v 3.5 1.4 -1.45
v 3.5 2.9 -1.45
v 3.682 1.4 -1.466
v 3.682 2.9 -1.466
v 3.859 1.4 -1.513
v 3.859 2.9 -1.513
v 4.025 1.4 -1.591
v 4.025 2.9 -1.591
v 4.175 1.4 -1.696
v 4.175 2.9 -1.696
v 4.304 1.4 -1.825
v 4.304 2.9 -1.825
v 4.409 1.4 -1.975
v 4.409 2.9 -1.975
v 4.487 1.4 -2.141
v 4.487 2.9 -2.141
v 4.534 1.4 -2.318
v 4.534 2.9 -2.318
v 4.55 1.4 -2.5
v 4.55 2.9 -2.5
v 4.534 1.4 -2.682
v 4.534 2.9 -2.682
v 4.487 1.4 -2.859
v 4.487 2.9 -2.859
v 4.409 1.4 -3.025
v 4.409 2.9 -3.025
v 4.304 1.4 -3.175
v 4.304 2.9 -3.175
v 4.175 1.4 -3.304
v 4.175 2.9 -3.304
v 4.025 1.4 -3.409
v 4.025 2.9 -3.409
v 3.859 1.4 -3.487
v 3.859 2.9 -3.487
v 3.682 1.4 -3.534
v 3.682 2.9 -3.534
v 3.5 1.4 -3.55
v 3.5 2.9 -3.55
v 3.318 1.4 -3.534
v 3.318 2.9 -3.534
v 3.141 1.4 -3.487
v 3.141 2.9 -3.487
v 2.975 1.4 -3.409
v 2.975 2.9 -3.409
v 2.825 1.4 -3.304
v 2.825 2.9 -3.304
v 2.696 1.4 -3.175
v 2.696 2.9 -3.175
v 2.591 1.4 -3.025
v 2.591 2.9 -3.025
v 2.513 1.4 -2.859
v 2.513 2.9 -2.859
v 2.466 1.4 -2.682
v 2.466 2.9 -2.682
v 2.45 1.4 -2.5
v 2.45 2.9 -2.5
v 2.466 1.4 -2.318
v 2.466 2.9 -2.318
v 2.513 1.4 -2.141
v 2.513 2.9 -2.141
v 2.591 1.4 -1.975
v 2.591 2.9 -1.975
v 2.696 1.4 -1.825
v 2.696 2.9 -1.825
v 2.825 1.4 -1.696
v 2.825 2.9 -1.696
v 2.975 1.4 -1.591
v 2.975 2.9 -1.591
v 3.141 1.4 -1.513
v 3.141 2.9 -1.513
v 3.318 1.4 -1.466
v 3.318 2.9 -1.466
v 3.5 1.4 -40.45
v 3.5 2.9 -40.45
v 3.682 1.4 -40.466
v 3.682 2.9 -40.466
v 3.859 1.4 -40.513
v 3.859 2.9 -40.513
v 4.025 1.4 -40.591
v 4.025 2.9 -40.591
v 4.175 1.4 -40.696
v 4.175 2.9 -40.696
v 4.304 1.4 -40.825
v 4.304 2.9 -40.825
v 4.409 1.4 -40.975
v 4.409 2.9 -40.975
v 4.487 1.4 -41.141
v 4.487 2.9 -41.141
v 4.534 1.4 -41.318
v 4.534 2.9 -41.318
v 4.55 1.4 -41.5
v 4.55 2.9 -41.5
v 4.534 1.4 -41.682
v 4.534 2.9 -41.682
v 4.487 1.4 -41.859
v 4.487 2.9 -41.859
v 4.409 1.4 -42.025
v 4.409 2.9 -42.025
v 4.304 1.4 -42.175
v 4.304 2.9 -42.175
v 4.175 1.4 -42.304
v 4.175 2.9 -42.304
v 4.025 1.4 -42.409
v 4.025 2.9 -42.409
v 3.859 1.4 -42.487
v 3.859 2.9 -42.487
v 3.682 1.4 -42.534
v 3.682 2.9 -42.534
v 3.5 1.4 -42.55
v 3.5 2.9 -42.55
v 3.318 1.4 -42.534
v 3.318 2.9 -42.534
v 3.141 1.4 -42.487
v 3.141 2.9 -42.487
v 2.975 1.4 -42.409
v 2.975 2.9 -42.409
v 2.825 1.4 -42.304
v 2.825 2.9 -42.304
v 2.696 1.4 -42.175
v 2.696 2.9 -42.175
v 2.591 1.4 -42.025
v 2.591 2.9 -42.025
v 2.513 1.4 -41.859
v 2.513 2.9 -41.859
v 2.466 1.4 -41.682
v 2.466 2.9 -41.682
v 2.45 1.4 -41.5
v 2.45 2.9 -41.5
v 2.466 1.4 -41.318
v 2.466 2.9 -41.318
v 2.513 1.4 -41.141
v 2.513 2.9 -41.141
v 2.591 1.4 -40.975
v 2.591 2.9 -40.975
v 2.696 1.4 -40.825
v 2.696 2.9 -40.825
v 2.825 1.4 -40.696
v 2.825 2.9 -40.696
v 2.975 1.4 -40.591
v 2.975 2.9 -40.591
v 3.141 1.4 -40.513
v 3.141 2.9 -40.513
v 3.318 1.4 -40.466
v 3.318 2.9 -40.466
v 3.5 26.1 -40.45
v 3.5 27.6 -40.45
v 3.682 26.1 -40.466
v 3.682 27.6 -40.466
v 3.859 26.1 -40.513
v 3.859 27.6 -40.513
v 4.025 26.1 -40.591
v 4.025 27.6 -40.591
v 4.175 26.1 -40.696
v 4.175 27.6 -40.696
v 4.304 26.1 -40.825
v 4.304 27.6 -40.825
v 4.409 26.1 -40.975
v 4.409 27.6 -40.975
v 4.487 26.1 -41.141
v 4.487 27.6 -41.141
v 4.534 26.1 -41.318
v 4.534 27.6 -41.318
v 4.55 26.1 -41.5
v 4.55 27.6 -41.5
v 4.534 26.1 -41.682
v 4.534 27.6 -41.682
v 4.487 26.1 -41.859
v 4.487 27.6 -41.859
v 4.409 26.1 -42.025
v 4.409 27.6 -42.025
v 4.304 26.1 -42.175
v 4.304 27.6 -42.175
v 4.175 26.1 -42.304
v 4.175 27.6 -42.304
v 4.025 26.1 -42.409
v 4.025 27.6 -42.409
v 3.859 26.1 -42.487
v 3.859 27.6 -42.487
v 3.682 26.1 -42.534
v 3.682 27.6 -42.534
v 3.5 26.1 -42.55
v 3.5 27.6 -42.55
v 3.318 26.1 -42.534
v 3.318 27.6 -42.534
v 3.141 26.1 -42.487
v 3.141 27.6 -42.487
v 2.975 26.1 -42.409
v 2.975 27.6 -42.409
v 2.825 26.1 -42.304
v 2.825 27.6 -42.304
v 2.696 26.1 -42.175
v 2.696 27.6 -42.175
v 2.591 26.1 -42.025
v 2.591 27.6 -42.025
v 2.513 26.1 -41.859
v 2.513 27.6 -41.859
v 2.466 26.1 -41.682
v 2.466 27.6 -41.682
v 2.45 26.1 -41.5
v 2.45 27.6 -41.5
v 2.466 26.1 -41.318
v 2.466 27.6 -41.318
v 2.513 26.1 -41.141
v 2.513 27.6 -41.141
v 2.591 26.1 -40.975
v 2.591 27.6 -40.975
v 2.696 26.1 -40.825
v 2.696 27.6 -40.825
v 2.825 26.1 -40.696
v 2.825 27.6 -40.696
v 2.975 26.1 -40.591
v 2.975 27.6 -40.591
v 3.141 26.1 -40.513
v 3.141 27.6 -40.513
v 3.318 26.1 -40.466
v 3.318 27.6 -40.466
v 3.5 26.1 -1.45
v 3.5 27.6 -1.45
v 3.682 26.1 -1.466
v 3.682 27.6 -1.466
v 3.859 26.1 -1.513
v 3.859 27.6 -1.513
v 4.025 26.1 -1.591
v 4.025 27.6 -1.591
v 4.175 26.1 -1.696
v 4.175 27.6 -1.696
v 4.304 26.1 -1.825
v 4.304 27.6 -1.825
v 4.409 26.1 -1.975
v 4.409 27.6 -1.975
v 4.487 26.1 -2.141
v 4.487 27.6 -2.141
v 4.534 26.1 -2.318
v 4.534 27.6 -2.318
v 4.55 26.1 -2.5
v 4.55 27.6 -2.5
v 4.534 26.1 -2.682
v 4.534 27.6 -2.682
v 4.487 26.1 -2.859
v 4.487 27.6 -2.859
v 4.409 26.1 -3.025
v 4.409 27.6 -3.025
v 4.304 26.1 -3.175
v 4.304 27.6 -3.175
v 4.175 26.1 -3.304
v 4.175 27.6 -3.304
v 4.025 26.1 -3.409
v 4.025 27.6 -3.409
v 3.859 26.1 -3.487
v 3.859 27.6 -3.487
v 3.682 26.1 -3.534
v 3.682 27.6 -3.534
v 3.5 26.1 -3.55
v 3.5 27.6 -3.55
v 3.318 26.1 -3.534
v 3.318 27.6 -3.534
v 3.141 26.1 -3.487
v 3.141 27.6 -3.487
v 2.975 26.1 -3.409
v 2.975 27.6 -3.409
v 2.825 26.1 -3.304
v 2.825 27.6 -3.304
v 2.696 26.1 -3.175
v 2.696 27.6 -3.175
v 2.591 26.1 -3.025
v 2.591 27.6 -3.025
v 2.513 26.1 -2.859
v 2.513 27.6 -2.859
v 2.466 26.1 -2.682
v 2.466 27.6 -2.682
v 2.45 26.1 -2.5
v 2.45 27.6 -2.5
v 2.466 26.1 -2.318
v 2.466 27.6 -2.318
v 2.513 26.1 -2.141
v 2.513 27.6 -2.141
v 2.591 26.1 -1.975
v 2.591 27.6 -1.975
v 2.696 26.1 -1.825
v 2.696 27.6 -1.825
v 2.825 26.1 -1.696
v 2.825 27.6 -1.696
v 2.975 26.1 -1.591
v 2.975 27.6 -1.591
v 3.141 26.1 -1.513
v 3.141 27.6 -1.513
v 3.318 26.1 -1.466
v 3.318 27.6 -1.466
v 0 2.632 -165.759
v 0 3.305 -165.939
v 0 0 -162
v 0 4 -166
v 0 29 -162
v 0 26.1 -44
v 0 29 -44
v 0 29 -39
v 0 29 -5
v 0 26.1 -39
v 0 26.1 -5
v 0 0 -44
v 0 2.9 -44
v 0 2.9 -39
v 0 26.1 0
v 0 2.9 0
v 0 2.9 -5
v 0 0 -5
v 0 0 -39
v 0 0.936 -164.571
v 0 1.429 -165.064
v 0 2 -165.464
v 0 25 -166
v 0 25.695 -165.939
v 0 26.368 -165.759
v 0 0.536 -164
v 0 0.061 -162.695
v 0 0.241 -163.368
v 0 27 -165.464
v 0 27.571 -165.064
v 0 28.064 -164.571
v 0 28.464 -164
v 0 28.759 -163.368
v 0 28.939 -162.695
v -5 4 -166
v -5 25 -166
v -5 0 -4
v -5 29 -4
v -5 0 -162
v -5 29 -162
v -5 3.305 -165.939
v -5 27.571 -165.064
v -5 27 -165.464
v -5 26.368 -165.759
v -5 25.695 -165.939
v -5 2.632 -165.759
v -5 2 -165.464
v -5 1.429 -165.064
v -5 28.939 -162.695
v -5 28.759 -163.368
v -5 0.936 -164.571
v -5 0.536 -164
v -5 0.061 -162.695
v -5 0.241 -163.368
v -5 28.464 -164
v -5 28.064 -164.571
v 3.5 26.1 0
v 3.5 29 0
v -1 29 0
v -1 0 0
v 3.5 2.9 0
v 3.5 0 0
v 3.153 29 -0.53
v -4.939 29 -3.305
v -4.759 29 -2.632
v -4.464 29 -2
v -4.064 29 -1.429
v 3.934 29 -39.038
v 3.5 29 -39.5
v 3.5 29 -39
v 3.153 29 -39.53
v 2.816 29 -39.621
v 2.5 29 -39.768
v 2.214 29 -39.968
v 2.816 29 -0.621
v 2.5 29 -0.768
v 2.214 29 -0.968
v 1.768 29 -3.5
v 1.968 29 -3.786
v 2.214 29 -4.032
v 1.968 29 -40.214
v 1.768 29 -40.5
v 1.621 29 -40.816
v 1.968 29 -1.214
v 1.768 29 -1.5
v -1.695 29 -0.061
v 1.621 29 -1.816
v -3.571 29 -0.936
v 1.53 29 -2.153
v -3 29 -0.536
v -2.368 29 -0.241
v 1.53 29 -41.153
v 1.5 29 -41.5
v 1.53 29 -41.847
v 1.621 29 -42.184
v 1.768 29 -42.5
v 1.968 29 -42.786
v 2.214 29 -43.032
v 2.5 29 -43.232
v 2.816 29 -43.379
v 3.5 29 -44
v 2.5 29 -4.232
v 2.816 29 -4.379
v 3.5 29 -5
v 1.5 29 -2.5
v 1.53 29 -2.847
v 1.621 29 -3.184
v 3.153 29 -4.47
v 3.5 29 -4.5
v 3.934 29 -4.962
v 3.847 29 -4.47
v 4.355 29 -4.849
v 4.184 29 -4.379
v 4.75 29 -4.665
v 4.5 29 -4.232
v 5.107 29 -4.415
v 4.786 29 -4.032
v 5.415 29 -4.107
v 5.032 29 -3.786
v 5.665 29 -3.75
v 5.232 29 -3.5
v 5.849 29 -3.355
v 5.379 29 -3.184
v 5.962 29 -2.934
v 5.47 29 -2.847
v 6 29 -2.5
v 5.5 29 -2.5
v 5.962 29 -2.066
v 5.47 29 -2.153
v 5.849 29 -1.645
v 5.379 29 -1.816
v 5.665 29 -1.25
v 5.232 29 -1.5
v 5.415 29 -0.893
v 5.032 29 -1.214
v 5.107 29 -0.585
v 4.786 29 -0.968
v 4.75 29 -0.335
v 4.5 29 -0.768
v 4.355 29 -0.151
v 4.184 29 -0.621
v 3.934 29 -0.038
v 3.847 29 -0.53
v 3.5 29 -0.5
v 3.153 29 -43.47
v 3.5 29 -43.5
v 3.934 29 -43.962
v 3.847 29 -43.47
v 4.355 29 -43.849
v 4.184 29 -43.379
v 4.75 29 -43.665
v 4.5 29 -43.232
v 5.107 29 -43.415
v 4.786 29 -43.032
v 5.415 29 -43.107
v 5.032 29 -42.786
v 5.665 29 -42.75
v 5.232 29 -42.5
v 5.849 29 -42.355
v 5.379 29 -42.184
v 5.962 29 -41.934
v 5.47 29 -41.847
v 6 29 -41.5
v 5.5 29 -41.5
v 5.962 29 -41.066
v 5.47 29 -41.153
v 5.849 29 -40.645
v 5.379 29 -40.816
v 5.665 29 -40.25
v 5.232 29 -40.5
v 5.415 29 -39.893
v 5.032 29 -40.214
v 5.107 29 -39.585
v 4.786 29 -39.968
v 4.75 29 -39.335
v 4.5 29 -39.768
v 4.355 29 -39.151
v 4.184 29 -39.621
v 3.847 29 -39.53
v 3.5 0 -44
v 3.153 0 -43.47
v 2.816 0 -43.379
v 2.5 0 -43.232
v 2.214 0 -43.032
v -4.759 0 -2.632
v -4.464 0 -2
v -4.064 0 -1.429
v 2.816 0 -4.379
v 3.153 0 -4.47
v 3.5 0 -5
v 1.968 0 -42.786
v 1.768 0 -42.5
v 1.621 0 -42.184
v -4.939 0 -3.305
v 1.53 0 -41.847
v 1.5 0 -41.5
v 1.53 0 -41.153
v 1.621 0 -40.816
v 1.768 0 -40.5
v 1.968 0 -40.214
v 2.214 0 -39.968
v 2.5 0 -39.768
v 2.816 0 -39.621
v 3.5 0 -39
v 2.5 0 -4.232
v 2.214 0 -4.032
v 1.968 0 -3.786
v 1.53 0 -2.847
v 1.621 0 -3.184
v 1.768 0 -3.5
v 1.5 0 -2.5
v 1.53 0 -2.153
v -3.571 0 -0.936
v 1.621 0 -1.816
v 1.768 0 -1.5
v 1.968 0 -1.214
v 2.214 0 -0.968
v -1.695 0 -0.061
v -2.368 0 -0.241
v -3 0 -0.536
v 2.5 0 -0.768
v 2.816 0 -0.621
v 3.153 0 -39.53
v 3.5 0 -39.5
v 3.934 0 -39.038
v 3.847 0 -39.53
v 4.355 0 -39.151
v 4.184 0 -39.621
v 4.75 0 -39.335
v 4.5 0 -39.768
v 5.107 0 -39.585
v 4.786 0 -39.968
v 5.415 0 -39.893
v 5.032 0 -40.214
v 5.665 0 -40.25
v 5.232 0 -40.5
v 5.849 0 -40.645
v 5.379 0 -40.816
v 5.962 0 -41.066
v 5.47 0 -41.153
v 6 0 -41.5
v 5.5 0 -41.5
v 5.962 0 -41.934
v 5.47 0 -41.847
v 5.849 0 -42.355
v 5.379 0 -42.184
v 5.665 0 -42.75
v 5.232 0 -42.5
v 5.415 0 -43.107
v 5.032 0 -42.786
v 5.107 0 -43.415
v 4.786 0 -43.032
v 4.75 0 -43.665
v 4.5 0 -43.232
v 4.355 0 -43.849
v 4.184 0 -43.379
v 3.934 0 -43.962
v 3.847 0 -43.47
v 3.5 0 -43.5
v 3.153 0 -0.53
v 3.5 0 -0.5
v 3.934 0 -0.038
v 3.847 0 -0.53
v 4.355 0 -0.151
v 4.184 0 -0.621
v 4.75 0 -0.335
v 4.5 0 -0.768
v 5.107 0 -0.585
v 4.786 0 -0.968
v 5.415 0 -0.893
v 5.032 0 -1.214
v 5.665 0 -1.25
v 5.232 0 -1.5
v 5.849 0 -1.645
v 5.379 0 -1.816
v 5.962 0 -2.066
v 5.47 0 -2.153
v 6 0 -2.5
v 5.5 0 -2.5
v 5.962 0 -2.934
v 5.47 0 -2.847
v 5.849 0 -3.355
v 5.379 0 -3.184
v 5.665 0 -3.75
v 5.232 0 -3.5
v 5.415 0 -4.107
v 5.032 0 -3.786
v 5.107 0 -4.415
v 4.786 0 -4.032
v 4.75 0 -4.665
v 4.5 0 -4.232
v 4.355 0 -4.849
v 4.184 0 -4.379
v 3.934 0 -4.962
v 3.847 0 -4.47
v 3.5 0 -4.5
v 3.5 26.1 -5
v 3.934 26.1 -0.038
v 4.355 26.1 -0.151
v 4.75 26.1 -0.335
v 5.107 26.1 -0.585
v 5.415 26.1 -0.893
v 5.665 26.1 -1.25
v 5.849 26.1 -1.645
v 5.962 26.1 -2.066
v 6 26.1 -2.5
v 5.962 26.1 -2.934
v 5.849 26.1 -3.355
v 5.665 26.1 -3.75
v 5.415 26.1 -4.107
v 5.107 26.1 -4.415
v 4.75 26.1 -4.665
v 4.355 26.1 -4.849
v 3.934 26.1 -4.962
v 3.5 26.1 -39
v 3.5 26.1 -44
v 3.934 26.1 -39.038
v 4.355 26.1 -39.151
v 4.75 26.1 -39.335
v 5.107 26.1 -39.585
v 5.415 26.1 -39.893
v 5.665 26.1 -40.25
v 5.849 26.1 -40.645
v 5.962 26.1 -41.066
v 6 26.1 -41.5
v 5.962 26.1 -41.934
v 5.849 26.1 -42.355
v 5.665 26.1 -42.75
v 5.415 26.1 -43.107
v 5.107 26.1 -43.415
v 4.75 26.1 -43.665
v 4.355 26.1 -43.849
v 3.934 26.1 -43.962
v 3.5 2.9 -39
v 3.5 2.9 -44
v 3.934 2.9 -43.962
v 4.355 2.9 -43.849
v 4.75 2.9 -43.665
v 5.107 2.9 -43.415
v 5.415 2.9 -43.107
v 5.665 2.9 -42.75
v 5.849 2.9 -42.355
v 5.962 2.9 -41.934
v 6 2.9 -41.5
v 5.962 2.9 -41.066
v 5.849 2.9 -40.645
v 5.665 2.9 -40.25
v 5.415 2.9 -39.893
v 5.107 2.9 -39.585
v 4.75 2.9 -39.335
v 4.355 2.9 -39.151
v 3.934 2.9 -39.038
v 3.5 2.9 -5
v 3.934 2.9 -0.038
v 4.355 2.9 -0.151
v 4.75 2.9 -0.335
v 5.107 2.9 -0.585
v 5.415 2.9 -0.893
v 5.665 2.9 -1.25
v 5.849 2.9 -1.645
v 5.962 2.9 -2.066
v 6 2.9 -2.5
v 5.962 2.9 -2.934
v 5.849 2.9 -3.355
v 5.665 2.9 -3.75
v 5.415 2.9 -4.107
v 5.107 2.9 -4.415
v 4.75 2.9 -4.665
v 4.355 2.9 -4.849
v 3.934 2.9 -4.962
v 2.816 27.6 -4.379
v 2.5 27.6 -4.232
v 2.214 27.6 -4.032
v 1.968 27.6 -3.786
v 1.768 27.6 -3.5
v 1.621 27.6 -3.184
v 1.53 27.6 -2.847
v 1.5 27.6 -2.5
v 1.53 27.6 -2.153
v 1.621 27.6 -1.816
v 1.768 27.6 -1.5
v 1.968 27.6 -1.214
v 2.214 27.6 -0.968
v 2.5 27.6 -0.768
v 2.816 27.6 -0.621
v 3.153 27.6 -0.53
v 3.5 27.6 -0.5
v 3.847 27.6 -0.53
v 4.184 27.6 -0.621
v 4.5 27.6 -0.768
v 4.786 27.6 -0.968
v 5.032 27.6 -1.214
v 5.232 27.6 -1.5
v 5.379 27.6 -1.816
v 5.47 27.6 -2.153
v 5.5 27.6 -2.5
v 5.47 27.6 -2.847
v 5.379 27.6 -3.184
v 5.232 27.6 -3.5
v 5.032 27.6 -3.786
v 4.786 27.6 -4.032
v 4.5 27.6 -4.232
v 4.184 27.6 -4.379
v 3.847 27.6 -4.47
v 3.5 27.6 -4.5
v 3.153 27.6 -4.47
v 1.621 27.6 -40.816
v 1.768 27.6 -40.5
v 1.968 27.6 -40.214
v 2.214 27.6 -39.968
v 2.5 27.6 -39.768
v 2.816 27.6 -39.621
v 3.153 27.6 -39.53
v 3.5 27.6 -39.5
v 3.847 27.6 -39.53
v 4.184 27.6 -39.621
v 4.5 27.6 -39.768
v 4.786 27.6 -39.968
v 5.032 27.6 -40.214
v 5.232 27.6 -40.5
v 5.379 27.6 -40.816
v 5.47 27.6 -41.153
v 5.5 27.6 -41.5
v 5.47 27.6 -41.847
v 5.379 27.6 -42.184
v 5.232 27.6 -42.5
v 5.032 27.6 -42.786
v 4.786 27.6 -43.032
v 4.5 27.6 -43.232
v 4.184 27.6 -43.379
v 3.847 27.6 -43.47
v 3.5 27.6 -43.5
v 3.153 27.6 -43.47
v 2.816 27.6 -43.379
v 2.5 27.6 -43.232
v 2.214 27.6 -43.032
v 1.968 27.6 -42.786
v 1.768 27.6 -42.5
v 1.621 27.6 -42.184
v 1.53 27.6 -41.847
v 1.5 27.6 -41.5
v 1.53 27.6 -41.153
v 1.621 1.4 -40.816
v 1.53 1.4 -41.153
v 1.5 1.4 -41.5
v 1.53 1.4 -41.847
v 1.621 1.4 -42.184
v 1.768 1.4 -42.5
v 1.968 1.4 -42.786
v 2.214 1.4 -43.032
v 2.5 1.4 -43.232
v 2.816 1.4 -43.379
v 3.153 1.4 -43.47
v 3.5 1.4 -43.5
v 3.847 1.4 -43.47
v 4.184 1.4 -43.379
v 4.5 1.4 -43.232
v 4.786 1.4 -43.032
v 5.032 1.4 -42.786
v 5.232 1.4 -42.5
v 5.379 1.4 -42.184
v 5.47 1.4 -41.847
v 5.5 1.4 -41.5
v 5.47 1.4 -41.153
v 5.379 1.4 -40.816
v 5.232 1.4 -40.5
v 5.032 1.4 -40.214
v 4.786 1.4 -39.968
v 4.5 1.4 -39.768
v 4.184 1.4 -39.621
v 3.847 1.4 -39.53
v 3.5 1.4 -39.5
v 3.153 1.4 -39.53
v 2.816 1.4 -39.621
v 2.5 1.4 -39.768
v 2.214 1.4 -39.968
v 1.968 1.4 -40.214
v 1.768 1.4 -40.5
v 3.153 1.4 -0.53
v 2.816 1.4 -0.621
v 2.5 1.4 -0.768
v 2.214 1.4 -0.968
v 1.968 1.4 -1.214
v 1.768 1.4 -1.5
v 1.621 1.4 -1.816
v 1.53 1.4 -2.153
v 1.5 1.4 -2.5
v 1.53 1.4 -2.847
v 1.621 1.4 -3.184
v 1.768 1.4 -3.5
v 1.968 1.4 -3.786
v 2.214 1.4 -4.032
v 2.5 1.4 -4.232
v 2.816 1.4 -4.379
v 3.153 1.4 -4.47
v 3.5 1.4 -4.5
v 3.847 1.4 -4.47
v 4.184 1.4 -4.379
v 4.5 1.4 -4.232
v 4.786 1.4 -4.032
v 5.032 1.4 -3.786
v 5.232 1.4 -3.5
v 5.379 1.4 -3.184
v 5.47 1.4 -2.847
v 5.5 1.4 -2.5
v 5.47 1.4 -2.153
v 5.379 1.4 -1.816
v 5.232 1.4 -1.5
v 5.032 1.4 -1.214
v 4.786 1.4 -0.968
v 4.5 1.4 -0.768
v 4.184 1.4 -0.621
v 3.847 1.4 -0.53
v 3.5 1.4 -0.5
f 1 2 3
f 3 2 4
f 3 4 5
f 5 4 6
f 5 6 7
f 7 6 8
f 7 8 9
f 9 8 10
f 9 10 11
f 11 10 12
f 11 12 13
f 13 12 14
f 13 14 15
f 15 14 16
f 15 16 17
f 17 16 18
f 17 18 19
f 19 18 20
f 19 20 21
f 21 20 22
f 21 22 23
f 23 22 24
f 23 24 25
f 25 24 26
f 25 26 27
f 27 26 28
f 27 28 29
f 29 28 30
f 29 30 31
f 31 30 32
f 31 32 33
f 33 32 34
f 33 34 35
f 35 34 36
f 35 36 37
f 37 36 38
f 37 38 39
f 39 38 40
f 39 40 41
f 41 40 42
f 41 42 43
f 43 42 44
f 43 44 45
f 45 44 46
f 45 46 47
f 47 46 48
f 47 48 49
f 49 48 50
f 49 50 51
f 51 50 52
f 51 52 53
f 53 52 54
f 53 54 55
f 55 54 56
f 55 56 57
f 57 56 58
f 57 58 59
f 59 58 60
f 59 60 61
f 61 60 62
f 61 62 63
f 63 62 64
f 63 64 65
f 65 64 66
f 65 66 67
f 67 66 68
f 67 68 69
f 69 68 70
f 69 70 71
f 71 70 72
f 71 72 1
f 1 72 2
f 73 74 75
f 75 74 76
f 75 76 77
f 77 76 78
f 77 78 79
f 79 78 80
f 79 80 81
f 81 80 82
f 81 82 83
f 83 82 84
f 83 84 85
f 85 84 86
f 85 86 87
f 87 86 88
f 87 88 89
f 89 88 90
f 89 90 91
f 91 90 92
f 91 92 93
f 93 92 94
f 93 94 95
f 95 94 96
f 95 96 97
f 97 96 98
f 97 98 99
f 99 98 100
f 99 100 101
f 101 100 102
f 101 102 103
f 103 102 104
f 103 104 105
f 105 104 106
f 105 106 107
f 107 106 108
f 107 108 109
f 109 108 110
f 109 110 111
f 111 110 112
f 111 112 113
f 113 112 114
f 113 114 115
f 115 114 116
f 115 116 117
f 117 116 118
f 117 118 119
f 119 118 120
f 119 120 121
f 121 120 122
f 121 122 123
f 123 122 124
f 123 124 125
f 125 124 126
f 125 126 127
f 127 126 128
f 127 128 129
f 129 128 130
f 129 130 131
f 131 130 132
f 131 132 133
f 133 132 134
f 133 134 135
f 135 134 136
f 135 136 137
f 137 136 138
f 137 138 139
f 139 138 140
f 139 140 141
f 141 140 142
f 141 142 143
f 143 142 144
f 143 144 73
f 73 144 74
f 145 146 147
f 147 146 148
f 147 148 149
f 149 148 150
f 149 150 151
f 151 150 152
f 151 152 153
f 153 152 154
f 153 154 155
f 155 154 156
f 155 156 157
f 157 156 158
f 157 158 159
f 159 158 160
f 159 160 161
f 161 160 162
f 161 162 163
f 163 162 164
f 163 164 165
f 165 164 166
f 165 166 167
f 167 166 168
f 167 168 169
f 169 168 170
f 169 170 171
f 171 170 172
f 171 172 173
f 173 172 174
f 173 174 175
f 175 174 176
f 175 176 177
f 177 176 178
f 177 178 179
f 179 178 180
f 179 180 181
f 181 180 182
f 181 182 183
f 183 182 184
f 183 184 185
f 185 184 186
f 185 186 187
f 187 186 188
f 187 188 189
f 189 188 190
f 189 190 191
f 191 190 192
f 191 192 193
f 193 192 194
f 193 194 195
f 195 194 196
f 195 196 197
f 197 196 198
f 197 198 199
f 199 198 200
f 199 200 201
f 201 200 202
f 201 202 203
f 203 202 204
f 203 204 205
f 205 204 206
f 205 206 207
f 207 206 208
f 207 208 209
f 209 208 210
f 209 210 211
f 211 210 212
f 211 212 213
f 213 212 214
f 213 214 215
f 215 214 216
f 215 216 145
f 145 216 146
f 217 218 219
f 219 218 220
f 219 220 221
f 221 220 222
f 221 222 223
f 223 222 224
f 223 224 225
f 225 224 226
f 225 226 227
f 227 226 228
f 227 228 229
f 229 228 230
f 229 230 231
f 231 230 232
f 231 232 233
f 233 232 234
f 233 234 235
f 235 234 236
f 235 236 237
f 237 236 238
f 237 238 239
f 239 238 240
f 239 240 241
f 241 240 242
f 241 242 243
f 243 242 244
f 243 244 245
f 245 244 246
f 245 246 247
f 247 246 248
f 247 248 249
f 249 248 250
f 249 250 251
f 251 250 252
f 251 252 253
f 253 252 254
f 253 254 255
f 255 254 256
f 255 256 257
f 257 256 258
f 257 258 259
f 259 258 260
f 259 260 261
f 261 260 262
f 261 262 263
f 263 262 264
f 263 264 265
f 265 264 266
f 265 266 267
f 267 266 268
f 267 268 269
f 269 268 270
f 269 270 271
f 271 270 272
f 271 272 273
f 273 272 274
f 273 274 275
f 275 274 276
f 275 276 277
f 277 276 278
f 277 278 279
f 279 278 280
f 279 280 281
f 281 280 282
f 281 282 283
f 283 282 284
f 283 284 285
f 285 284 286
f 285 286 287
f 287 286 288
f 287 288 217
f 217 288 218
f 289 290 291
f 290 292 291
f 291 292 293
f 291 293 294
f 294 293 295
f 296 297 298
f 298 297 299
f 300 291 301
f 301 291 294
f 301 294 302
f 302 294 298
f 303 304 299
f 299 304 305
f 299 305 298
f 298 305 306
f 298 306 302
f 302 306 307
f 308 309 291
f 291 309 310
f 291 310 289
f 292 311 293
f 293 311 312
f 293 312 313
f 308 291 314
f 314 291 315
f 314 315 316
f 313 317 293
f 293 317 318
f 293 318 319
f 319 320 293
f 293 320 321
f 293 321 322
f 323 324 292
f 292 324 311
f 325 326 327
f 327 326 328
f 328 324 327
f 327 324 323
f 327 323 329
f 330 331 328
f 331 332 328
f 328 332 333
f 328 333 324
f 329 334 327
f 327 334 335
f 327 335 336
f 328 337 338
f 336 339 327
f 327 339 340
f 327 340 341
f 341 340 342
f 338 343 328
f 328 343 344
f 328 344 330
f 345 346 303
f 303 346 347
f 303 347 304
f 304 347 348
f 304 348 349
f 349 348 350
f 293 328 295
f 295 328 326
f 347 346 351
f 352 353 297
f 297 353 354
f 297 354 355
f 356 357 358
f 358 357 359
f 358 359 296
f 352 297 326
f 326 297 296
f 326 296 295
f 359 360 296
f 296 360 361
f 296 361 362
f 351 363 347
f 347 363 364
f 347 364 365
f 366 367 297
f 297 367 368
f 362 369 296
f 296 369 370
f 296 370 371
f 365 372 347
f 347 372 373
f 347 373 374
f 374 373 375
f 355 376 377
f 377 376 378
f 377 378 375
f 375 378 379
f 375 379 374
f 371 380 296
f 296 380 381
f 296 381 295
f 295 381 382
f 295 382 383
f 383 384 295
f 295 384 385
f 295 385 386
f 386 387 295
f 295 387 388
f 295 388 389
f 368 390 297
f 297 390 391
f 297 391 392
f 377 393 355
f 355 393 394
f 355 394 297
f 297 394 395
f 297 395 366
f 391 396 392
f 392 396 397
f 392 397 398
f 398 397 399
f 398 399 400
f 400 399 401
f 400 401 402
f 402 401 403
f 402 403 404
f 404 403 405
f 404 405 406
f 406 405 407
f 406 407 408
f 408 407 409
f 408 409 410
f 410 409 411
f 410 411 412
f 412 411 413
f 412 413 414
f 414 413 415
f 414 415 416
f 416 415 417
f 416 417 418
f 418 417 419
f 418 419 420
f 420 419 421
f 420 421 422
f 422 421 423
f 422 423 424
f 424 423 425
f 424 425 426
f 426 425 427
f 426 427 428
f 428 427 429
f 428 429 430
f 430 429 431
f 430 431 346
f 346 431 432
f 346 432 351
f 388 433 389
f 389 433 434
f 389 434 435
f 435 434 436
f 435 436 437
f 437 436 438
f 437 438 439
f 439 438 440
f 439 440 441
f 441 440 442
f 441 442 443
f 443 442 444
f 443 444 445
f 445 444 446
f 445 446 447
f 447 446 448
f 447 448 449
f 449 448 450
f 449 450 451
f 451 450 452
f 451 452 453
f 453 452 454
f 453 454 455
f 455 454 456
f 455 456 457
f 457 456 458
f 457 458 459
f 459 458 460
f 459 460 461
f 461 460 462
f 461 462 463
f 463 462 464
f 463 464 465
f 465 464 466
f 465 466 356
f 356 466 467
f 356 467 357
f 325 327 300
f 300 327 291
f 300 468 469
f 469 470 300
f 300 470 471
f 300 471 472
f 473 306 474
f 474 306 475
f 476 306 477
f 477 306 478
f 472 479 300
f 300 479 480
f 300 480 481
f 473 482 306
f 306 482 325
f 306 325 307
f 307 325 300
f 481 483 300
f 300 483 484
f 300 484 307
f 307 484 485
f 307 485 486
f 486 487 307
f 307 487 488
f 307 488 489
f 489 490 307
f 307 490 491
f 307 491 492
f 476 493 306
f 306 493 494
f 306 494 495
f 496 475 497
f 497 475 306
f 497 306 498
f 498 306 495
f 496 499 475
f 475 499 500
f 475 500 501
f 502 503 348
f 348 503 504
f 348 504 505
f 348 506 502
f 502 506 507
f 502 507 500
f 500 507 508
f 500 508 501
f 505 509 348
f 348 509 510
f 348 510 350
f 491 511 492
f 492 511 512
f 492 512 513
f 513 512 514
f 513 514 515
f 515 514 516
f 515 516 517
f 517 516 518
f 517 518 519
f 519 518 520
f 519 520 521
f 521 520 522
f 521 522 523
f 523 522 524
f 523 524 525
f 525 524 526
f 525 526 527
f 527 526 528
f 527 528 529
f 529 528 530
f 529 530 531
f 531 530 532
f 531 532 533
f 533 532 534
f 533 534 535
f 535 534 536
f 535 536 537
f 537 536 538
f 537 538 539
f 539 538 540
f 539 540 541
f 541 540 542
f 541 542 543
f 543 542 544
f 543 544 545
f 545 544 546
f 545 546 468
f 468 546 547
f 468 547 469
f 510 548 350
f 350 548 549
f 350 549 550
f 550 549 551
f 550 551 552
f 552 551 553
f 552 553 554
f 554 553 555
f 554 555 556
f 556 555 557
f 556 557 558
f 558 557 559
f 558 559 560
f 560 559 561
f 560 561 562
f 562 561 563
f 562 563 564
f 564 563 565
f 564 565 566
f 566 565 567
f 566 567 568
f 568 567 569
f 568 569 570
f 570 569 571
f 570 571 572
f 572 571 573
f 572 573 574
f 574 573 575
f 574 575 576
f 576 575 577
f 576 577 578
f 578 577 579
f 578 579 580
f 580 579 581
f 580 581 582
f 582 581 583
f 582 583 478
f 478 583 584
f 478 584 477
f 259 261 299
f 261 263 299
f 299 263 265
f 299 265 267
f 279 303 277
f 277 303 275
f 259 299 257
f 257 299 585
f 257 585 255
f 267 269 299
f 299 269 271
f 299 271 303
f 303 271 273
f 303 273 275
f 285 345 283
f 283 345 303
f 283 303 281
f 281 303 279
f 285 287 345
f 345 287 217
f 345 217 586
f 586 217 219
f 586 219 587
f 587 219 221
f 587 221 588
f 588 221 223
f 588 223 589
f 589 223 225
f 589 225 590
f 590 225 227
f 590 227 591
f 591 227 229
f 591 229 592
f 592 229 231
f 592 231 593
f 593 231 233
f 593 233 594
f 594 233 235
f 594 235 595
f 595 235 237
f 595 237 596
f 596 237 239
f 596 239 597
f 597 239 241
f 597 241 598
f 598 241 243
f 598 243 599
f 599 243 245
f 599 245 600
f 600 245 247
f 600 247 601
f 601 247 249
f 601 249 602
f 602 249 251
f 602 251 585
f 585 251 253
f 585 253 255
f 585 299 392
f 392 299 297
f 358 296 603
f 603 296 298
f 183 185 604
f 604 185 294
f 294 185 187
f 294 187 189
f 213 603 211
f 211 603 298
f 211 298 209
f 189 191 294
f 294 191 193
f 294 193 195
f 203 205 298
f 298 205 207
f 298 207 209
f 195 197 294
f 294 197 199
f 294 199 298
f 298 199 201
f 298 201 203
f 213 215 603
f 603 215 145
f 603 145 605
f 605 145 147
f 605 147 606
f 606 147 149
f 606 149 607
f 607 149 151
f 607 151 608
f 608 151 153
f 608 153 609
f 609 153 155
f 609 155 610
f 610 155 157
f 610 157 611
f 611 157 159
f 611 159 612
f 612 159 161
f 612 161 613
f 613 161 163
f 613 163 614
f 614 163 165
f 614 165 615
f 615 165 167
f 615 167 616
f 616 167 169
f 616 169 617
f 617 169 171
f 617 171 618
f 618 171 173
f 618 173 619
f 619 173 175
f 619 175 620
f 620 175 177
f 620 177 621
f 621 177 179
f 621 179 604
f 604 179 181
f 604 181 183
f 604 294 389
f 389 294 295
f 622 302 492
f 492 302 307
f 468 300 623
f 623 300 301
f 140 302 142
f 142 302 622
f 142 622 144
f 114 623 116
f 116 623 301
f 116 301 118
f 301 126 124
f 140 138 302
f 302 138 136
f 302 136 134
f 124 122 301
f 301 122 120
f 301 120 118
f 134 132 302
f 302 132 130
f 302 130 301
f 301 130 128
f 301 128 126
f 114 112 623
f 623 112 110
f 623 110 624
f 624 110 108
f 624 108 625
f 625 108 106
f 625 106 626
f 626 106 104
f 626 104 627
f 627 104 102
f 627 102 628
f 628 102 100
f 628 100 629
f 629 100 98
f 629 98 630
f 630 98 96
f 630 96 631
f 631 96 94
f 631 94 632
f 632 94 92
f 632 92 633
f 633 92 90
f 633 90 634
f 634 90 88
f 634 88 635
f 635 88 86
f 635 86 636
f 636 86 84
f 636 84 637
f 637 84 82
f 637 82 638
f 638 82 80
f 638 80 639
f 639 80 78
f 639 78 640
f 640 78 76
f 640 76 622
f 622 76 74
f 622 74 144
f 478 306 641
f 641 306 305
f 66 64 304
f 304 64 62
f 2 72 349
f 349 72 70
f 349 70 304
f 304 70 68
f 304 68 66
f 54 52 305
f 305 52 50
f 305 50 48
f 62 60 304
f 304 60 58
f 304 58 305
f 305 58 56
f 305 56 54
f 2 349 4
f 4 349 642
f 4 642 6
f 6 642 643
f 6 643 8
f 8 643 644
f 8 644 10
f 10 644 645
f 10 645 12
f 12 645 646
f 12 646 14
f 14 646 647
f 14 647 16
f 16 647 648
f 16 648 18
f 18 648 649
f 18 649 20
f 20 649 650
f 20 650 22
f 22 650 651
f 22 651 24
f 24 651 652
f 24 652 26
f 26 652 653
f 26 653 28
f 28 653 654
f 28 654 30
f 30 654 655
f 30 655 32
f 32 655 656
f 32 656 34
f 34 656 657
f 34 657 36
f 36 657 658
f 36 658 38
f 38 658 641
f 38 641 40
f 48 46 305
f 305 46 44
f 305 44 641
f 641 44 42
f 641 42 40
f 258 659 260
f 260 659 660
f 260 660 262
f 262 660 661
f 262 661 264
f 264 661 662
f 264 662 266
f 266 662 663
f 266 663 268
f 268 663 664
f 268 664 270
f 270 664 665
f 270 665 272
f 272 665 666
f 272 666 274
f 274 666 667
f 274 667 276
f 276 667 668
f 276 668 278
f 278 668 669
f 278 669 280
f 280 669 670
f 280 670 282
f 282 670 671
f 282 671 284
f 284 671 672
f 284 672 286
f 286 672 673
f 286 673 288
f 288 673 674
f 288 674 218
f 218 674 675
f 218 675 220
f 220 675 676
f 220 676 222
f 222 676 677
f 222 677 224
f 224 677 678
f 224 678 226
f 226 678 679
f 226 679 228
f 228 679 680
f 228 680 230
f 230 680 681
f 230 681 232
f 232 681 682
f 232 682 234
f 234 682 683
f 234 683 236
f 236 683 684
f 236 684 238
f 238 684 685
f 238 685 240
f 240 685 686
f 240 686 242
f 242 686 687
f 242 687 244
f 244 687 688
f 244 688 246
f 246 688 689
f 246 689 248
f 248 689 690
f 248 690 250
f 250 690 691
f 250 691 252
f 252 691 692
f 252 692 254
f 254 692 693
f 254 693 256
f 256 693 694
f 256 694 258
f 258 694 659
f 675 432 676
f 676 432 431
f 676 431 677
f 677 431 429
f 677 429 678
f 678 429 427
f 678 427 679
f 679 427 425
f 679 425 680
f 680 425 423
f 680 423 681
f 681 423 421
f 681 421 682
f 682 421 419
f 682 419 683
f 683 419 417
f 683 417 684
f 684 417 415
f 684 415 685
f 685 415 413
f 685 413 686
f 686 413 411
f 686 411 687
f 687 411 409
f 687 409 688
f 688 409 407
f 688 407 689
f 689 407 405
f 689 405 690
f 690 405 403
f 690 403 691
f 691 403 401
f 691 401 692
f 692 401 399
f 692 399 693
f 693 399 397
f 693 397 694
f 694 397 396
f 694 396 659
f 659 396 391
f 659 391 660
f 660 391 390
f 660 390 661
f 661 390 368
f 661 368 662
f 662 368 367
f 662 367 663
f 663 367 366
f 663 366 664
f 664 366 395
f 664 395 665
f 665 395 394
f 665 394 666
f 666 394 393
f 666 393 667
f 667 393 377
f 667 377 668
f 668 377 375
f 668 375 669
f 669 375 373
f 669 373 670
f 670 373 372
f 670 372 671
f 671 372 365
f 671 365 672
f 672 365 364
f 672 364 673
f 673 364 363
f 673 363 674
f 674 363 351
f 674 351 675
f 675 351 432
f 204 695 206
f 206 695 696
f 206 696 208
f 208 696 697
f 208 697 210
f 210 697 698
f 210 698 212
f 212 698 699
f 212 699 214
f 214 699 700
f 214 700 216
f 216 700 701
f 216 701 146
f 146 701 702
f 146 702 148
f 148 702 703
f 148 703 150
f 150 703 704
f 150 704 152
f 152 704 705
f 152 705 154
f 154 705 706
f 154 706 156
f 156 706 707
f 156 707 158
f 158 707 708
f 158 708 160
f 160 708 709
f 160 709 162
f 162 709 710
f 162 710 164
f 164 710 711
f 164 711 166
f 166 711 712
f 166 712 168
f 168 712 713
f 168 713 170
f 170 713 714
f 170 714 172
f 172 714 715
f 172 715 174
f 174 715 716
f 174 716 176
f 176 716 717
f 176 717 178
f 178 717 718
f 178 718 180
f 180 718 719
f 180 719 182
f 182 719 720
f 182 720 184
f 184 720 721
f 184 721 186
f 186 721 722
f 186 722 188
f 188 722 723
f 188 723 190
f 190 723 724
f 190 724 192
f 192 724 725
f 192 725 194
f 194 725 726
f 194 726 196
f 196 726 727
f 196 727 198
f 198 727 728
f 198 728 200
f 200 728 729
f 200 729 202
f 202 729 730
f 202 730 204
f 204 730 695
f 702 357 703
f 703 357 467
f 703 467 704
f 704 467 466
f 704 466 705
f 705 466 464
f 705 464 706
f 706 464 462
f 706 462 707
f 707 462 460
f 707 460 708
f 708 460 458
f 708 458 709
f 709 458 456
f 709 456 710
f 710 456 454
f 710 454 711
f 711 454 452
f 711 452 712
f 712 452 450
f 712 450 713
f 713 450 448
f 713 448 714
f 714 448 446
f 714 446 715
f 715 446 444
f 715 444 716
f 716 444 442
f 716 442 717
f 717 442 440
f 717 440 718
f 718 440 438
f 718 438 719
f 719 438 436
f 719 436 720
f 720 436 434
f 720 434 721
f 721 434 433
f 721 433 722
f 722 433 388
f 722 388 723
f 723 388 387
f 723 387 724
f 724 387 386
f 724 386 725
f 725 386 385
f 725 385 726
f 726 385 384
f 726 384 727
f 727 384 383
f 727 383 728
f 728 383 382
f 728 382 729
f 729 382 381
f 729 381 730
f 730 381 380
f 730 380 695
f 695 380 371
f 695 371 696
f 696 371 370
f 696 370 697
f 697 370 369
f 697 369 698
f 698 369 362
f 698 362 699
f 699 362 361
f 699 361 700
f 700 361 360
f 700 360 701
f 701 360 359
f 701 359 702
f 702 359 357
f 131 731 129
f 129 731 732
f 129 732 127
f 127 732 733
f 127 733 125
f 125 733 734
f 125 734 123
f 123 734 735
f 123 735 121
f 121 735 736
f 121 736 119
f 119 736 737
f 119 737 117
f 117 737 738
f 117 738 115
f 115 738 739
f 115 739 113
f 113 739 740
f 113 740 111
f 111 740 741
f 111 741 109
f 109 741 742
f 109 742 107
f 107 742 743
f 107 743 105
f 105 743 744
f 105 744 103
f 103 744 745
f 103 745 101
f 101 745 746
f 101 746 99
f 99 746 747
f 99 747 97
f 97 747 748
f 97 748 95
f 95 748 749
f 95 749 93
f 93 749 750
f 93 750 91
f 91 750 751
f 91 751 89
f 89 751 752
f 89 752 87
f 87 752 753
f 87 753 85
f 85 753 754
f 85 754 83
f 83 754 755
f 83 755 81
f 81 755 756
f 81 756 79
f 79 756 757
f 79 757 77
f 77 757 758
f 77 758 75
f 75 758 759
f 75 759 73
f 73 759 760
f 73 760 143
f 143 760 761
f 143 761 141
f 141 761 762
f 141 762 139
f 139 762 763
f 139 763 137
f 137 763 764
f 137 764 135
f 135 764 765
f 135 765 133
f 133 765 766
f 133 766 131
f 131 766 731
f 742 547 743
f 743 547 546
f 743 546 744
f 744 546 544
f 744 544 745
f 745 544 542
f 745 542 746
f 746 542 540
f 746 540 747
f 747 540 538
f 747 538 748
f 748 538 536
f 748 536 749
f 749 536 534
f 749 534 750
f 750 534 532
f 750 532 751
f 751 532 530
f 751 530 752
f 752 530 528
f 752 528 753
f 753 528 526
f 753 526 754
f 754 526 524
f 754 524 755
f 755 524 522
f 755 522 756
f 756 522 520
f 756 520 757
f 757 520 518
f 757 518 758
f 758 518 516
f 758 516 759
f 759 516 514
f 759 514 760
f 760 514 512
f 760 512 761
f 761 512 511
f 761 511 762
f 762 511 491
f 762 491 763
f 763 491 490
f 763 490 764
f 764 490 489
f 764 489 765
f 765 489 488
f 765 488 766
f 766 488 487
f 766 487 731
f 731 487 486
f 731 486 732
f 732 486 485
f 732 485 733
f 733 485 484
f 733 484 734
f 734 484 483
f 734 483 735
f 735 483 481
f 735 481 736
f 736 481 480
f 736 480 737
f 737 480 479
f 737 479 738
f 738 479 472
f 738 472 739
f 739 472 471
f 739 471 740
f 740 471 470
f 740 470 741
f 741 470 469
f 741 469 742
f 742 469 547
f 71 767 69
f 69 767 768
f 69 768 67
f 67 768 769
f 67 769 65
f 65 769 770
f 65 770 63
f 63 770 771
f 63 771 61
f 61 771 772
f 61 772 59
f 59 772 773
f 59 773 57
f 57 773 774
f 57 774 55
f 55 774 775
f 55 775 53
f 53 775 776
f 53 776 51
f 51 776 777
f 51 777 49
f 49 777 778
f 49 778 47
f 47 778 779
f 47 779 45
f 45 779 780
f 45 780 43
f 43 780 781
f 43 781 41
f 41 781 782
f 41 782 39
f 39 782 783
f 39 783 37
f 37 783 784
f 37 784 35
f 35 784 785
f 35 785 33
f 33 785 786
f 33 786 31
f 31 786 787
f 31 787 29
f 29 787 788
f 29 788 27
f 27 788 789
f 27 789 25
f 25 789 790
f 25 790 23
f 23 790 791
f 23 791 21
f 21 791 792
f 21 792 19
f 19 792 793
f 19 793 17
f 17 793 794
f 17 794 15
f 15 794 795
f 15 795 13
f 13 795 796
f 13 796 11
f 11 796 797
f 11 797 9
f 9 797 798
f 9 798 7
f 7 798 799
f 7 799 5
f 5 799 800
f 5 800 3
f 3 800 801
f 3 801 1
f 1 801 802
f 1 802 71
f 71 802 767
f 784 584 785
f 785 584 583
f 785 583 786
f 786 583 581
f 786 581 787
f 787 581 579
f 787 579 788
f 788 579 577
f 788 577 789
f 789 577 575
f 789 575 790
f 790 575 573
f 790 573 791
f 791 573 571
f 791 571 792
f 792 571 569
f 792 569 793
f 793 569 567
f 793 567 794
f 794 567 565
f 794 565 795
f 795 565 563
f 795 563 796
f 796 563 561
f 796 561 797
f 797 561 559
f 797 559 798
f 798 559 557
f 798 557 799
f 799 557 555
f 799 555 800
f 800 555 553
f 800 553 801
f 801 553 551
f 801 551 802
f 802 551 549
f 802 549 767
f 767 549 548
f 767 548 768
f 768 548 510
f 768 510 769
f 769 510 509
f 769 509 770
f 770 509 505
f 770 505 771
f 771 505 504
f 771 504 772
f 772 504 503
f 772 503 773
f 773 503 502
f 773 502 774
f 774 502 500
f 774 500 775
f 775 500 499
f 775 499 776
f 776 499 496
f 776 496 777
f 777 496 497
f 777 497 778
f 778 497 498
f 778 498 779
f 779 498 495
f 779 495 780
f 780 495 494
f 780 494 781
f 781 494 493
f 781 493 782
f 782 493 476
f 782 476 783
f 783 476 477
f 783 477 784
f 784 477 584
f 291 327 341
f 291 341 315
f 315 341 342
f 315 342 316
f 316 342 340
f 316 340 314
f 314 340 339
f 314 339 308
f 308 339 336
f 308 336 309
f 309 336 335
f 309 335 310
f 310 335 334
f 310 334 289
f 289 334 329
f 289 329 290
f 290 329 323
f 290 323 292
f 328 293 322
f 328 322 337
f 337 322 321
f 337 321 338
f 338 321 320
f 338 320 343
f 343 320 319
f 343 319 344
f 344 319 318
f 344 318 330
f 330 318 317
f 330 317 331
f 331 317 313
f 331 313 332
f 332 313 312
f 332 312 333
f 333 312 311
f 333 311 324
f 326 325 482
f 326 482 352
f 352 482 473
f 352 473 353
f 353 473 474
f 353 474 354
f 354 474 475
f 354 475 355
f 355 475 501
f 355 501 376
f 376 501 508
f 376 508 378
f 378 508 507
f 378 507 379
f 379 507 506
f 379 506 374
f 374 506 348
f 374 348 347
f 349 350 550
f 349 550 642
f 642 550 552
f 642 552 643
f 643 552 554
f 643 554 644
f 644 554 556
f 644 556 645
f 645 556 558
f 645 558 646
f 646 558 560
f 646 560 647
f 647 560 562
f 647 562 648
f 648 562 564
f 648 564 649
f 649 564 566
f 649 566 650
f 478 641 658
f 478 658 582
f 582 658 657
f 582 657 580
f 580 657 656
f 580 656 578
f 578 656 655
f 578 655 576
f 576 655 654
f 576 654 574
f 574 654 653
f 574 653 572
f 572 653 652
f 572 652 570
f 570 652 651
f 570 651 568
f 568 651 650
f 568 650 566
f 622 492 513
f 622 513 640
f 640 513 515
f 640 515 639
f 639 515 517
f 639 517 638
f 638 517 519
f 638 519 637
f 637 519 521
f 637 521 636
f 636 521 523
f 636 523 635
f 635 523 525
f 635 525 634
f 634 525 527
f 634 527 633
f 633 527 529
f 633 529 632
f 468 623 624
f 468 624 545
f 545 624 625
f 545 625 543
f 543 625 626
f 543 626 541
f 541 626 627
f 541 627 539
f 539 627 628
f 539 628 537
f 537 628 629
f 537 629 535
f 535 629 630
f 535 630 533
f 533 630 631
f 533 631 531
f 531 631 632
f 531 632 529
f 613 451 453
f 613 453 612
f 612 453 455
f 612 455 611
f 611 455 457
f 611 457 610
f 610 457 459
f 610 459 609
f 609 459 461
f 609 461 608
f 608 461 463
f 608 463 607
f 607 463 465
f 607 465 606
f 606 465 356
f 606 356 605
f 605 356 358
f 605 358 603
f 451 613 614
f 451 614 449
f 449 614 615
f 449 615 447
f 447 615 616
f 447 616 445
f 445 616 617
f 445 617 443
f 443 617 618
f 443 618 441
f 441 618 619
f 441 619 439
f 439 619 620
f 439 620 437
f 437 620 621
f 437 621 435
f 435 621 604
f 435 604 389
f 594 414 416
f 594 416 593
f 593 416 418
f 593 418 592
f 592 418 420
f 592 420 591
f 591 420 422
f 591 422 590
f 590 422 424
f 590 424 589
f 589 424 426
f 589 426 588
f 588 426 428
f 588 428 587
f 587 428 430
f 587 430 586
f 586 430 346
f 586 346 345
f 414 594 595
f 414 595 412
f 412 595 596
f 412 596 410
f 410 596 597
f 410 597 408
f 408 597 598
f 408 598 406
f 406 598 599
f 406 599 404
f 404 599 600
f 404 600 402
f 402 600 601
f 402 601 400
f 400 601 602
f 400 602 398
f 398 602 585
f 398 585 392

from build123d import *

# Parameters (mm, degrees)
SKETCH1_W           = 5
SKETCH1_H           = 166
BOSS_EXTRUDE1_DEPTH = 29
SKETCH2_W           = 5
SKETCH2_H           = 2.9
BOSS_EXTRUDE2_DEPTH = 6
SKETCH3_R           = 1.05
CUT_EXTRUDE1_DEPTH  = 169.620876525
SKETCH4_R           = 2
CUT_EXTRUDE2_DEPTH  = 1.4
FILLET1_R           = 4
FILLET2_R           = 2.5


with BuildPart() as part:
    # Sketch1 → Boss-Extrude1 (new body)
    with BuildSketch(Plane(origin=(0, 0, 0), x_dir=(1, 0, 0), z_dir=(0, 1, 0))):
        with Locations((-2.5, 83)):
            Rectangle(SKETCH1_W, SKETCH1_H)
    extrude(amount=BOSS_EXTRUDE1_DEPTH)

    # Sketch2 → Boss-Extrude2 (add)
    with BuildSketch(Plane(origin=(0, 0, 0), x_dir=(0, 0, -1), z_dir=(1, 0, 0))):
        with Locations((2.5, 27.55)):
            Rectangle(SKETCH2_W, SKETCH2_H)
        with Locations((41.5, 27.55)):
            Rectangle(SKETCH2_W, SKETCH2_H)
        with Locations((41.5, 1.45)):
            Rectangle(SKETCH2_W, SKETCH2_H)
        with Locations((2.5, 1.45)):
            Rectangle(SKETCH2_W, SKETCH2_H)
    extrude(amount=BOSS_EXTRUDE2_DEPTH)

    # Sketch3 → Cut-Extrude1 (cut, through all)
    with BuildSketch(Plane(origin=(0, 29, 0), x_dir=(1, 0, 0), z_dir=(0, 1, 0))):
        with Locations(Location((3.5, 41.5, 0), (0, 0, 270))):
            Circle(SKETCH3_R)
        with Locations(Location((3.5, 2.5, 0), (0, 0, 270))):
            Circle(SKETCH3_R)
    extrude(amount=-CUT_EXTRUDE1_DEPTH, mode=Mode.SUBTRACT)

    # Sketch4 → Cut-Extrude2 (cut)
    with BuildSketch(Plane(origin=(0, 29, 0), x_dir=(1, 0, 0), z_dir=(0, 1, 0))):
        with Locations(Location((3.5, 41.5, 0), (0, 0, 270))):
            Circle(SKETCH4_R)
        with Locations(Location((3.5, 2.5, 0), (0, 0, 270))):
            Circle(SKETCH4_R)
    cut_extrude2 = extrude(amount=-CUT_EXTRUDE2_DEPTH, mode=Mode.SUBTRACT)

    # Mirror2: Cut-Extrude2 across plane
    add(cut_extrude2.mirror(Plane.ZX.offset(14.5)), mode=Mode.SUBTRACT)

    # Fillet1
    fillet1_edges = [part.edges().sort_by_distance(p)[0] for p in [
        (-2.5, 0, -166),
        (-5, 14.5, 0),
        (-2.5, 29, -166),
    ]]
    fillet(fillet1_edges, radius=FILLET1_R)

    # Fillet2
    fillet2_edges = [part.edges().sort_by_distance(p)[0] for p in [
        (6, 1.45, -5),
        (6, 1.45, 0),
        (6, 1.45, -44),
        (6, 1.45, -39),
        (6, 27.55, -44),
        (6, 27.55, -39),
        (6, 27.55, -5),
        (6, 27.55, 0),
    ]]
    fillet(fillet2_edges, radius=FILLET2_R - 0.0001)  # a hair under: the kernel refuses the full size


solid = part.part
